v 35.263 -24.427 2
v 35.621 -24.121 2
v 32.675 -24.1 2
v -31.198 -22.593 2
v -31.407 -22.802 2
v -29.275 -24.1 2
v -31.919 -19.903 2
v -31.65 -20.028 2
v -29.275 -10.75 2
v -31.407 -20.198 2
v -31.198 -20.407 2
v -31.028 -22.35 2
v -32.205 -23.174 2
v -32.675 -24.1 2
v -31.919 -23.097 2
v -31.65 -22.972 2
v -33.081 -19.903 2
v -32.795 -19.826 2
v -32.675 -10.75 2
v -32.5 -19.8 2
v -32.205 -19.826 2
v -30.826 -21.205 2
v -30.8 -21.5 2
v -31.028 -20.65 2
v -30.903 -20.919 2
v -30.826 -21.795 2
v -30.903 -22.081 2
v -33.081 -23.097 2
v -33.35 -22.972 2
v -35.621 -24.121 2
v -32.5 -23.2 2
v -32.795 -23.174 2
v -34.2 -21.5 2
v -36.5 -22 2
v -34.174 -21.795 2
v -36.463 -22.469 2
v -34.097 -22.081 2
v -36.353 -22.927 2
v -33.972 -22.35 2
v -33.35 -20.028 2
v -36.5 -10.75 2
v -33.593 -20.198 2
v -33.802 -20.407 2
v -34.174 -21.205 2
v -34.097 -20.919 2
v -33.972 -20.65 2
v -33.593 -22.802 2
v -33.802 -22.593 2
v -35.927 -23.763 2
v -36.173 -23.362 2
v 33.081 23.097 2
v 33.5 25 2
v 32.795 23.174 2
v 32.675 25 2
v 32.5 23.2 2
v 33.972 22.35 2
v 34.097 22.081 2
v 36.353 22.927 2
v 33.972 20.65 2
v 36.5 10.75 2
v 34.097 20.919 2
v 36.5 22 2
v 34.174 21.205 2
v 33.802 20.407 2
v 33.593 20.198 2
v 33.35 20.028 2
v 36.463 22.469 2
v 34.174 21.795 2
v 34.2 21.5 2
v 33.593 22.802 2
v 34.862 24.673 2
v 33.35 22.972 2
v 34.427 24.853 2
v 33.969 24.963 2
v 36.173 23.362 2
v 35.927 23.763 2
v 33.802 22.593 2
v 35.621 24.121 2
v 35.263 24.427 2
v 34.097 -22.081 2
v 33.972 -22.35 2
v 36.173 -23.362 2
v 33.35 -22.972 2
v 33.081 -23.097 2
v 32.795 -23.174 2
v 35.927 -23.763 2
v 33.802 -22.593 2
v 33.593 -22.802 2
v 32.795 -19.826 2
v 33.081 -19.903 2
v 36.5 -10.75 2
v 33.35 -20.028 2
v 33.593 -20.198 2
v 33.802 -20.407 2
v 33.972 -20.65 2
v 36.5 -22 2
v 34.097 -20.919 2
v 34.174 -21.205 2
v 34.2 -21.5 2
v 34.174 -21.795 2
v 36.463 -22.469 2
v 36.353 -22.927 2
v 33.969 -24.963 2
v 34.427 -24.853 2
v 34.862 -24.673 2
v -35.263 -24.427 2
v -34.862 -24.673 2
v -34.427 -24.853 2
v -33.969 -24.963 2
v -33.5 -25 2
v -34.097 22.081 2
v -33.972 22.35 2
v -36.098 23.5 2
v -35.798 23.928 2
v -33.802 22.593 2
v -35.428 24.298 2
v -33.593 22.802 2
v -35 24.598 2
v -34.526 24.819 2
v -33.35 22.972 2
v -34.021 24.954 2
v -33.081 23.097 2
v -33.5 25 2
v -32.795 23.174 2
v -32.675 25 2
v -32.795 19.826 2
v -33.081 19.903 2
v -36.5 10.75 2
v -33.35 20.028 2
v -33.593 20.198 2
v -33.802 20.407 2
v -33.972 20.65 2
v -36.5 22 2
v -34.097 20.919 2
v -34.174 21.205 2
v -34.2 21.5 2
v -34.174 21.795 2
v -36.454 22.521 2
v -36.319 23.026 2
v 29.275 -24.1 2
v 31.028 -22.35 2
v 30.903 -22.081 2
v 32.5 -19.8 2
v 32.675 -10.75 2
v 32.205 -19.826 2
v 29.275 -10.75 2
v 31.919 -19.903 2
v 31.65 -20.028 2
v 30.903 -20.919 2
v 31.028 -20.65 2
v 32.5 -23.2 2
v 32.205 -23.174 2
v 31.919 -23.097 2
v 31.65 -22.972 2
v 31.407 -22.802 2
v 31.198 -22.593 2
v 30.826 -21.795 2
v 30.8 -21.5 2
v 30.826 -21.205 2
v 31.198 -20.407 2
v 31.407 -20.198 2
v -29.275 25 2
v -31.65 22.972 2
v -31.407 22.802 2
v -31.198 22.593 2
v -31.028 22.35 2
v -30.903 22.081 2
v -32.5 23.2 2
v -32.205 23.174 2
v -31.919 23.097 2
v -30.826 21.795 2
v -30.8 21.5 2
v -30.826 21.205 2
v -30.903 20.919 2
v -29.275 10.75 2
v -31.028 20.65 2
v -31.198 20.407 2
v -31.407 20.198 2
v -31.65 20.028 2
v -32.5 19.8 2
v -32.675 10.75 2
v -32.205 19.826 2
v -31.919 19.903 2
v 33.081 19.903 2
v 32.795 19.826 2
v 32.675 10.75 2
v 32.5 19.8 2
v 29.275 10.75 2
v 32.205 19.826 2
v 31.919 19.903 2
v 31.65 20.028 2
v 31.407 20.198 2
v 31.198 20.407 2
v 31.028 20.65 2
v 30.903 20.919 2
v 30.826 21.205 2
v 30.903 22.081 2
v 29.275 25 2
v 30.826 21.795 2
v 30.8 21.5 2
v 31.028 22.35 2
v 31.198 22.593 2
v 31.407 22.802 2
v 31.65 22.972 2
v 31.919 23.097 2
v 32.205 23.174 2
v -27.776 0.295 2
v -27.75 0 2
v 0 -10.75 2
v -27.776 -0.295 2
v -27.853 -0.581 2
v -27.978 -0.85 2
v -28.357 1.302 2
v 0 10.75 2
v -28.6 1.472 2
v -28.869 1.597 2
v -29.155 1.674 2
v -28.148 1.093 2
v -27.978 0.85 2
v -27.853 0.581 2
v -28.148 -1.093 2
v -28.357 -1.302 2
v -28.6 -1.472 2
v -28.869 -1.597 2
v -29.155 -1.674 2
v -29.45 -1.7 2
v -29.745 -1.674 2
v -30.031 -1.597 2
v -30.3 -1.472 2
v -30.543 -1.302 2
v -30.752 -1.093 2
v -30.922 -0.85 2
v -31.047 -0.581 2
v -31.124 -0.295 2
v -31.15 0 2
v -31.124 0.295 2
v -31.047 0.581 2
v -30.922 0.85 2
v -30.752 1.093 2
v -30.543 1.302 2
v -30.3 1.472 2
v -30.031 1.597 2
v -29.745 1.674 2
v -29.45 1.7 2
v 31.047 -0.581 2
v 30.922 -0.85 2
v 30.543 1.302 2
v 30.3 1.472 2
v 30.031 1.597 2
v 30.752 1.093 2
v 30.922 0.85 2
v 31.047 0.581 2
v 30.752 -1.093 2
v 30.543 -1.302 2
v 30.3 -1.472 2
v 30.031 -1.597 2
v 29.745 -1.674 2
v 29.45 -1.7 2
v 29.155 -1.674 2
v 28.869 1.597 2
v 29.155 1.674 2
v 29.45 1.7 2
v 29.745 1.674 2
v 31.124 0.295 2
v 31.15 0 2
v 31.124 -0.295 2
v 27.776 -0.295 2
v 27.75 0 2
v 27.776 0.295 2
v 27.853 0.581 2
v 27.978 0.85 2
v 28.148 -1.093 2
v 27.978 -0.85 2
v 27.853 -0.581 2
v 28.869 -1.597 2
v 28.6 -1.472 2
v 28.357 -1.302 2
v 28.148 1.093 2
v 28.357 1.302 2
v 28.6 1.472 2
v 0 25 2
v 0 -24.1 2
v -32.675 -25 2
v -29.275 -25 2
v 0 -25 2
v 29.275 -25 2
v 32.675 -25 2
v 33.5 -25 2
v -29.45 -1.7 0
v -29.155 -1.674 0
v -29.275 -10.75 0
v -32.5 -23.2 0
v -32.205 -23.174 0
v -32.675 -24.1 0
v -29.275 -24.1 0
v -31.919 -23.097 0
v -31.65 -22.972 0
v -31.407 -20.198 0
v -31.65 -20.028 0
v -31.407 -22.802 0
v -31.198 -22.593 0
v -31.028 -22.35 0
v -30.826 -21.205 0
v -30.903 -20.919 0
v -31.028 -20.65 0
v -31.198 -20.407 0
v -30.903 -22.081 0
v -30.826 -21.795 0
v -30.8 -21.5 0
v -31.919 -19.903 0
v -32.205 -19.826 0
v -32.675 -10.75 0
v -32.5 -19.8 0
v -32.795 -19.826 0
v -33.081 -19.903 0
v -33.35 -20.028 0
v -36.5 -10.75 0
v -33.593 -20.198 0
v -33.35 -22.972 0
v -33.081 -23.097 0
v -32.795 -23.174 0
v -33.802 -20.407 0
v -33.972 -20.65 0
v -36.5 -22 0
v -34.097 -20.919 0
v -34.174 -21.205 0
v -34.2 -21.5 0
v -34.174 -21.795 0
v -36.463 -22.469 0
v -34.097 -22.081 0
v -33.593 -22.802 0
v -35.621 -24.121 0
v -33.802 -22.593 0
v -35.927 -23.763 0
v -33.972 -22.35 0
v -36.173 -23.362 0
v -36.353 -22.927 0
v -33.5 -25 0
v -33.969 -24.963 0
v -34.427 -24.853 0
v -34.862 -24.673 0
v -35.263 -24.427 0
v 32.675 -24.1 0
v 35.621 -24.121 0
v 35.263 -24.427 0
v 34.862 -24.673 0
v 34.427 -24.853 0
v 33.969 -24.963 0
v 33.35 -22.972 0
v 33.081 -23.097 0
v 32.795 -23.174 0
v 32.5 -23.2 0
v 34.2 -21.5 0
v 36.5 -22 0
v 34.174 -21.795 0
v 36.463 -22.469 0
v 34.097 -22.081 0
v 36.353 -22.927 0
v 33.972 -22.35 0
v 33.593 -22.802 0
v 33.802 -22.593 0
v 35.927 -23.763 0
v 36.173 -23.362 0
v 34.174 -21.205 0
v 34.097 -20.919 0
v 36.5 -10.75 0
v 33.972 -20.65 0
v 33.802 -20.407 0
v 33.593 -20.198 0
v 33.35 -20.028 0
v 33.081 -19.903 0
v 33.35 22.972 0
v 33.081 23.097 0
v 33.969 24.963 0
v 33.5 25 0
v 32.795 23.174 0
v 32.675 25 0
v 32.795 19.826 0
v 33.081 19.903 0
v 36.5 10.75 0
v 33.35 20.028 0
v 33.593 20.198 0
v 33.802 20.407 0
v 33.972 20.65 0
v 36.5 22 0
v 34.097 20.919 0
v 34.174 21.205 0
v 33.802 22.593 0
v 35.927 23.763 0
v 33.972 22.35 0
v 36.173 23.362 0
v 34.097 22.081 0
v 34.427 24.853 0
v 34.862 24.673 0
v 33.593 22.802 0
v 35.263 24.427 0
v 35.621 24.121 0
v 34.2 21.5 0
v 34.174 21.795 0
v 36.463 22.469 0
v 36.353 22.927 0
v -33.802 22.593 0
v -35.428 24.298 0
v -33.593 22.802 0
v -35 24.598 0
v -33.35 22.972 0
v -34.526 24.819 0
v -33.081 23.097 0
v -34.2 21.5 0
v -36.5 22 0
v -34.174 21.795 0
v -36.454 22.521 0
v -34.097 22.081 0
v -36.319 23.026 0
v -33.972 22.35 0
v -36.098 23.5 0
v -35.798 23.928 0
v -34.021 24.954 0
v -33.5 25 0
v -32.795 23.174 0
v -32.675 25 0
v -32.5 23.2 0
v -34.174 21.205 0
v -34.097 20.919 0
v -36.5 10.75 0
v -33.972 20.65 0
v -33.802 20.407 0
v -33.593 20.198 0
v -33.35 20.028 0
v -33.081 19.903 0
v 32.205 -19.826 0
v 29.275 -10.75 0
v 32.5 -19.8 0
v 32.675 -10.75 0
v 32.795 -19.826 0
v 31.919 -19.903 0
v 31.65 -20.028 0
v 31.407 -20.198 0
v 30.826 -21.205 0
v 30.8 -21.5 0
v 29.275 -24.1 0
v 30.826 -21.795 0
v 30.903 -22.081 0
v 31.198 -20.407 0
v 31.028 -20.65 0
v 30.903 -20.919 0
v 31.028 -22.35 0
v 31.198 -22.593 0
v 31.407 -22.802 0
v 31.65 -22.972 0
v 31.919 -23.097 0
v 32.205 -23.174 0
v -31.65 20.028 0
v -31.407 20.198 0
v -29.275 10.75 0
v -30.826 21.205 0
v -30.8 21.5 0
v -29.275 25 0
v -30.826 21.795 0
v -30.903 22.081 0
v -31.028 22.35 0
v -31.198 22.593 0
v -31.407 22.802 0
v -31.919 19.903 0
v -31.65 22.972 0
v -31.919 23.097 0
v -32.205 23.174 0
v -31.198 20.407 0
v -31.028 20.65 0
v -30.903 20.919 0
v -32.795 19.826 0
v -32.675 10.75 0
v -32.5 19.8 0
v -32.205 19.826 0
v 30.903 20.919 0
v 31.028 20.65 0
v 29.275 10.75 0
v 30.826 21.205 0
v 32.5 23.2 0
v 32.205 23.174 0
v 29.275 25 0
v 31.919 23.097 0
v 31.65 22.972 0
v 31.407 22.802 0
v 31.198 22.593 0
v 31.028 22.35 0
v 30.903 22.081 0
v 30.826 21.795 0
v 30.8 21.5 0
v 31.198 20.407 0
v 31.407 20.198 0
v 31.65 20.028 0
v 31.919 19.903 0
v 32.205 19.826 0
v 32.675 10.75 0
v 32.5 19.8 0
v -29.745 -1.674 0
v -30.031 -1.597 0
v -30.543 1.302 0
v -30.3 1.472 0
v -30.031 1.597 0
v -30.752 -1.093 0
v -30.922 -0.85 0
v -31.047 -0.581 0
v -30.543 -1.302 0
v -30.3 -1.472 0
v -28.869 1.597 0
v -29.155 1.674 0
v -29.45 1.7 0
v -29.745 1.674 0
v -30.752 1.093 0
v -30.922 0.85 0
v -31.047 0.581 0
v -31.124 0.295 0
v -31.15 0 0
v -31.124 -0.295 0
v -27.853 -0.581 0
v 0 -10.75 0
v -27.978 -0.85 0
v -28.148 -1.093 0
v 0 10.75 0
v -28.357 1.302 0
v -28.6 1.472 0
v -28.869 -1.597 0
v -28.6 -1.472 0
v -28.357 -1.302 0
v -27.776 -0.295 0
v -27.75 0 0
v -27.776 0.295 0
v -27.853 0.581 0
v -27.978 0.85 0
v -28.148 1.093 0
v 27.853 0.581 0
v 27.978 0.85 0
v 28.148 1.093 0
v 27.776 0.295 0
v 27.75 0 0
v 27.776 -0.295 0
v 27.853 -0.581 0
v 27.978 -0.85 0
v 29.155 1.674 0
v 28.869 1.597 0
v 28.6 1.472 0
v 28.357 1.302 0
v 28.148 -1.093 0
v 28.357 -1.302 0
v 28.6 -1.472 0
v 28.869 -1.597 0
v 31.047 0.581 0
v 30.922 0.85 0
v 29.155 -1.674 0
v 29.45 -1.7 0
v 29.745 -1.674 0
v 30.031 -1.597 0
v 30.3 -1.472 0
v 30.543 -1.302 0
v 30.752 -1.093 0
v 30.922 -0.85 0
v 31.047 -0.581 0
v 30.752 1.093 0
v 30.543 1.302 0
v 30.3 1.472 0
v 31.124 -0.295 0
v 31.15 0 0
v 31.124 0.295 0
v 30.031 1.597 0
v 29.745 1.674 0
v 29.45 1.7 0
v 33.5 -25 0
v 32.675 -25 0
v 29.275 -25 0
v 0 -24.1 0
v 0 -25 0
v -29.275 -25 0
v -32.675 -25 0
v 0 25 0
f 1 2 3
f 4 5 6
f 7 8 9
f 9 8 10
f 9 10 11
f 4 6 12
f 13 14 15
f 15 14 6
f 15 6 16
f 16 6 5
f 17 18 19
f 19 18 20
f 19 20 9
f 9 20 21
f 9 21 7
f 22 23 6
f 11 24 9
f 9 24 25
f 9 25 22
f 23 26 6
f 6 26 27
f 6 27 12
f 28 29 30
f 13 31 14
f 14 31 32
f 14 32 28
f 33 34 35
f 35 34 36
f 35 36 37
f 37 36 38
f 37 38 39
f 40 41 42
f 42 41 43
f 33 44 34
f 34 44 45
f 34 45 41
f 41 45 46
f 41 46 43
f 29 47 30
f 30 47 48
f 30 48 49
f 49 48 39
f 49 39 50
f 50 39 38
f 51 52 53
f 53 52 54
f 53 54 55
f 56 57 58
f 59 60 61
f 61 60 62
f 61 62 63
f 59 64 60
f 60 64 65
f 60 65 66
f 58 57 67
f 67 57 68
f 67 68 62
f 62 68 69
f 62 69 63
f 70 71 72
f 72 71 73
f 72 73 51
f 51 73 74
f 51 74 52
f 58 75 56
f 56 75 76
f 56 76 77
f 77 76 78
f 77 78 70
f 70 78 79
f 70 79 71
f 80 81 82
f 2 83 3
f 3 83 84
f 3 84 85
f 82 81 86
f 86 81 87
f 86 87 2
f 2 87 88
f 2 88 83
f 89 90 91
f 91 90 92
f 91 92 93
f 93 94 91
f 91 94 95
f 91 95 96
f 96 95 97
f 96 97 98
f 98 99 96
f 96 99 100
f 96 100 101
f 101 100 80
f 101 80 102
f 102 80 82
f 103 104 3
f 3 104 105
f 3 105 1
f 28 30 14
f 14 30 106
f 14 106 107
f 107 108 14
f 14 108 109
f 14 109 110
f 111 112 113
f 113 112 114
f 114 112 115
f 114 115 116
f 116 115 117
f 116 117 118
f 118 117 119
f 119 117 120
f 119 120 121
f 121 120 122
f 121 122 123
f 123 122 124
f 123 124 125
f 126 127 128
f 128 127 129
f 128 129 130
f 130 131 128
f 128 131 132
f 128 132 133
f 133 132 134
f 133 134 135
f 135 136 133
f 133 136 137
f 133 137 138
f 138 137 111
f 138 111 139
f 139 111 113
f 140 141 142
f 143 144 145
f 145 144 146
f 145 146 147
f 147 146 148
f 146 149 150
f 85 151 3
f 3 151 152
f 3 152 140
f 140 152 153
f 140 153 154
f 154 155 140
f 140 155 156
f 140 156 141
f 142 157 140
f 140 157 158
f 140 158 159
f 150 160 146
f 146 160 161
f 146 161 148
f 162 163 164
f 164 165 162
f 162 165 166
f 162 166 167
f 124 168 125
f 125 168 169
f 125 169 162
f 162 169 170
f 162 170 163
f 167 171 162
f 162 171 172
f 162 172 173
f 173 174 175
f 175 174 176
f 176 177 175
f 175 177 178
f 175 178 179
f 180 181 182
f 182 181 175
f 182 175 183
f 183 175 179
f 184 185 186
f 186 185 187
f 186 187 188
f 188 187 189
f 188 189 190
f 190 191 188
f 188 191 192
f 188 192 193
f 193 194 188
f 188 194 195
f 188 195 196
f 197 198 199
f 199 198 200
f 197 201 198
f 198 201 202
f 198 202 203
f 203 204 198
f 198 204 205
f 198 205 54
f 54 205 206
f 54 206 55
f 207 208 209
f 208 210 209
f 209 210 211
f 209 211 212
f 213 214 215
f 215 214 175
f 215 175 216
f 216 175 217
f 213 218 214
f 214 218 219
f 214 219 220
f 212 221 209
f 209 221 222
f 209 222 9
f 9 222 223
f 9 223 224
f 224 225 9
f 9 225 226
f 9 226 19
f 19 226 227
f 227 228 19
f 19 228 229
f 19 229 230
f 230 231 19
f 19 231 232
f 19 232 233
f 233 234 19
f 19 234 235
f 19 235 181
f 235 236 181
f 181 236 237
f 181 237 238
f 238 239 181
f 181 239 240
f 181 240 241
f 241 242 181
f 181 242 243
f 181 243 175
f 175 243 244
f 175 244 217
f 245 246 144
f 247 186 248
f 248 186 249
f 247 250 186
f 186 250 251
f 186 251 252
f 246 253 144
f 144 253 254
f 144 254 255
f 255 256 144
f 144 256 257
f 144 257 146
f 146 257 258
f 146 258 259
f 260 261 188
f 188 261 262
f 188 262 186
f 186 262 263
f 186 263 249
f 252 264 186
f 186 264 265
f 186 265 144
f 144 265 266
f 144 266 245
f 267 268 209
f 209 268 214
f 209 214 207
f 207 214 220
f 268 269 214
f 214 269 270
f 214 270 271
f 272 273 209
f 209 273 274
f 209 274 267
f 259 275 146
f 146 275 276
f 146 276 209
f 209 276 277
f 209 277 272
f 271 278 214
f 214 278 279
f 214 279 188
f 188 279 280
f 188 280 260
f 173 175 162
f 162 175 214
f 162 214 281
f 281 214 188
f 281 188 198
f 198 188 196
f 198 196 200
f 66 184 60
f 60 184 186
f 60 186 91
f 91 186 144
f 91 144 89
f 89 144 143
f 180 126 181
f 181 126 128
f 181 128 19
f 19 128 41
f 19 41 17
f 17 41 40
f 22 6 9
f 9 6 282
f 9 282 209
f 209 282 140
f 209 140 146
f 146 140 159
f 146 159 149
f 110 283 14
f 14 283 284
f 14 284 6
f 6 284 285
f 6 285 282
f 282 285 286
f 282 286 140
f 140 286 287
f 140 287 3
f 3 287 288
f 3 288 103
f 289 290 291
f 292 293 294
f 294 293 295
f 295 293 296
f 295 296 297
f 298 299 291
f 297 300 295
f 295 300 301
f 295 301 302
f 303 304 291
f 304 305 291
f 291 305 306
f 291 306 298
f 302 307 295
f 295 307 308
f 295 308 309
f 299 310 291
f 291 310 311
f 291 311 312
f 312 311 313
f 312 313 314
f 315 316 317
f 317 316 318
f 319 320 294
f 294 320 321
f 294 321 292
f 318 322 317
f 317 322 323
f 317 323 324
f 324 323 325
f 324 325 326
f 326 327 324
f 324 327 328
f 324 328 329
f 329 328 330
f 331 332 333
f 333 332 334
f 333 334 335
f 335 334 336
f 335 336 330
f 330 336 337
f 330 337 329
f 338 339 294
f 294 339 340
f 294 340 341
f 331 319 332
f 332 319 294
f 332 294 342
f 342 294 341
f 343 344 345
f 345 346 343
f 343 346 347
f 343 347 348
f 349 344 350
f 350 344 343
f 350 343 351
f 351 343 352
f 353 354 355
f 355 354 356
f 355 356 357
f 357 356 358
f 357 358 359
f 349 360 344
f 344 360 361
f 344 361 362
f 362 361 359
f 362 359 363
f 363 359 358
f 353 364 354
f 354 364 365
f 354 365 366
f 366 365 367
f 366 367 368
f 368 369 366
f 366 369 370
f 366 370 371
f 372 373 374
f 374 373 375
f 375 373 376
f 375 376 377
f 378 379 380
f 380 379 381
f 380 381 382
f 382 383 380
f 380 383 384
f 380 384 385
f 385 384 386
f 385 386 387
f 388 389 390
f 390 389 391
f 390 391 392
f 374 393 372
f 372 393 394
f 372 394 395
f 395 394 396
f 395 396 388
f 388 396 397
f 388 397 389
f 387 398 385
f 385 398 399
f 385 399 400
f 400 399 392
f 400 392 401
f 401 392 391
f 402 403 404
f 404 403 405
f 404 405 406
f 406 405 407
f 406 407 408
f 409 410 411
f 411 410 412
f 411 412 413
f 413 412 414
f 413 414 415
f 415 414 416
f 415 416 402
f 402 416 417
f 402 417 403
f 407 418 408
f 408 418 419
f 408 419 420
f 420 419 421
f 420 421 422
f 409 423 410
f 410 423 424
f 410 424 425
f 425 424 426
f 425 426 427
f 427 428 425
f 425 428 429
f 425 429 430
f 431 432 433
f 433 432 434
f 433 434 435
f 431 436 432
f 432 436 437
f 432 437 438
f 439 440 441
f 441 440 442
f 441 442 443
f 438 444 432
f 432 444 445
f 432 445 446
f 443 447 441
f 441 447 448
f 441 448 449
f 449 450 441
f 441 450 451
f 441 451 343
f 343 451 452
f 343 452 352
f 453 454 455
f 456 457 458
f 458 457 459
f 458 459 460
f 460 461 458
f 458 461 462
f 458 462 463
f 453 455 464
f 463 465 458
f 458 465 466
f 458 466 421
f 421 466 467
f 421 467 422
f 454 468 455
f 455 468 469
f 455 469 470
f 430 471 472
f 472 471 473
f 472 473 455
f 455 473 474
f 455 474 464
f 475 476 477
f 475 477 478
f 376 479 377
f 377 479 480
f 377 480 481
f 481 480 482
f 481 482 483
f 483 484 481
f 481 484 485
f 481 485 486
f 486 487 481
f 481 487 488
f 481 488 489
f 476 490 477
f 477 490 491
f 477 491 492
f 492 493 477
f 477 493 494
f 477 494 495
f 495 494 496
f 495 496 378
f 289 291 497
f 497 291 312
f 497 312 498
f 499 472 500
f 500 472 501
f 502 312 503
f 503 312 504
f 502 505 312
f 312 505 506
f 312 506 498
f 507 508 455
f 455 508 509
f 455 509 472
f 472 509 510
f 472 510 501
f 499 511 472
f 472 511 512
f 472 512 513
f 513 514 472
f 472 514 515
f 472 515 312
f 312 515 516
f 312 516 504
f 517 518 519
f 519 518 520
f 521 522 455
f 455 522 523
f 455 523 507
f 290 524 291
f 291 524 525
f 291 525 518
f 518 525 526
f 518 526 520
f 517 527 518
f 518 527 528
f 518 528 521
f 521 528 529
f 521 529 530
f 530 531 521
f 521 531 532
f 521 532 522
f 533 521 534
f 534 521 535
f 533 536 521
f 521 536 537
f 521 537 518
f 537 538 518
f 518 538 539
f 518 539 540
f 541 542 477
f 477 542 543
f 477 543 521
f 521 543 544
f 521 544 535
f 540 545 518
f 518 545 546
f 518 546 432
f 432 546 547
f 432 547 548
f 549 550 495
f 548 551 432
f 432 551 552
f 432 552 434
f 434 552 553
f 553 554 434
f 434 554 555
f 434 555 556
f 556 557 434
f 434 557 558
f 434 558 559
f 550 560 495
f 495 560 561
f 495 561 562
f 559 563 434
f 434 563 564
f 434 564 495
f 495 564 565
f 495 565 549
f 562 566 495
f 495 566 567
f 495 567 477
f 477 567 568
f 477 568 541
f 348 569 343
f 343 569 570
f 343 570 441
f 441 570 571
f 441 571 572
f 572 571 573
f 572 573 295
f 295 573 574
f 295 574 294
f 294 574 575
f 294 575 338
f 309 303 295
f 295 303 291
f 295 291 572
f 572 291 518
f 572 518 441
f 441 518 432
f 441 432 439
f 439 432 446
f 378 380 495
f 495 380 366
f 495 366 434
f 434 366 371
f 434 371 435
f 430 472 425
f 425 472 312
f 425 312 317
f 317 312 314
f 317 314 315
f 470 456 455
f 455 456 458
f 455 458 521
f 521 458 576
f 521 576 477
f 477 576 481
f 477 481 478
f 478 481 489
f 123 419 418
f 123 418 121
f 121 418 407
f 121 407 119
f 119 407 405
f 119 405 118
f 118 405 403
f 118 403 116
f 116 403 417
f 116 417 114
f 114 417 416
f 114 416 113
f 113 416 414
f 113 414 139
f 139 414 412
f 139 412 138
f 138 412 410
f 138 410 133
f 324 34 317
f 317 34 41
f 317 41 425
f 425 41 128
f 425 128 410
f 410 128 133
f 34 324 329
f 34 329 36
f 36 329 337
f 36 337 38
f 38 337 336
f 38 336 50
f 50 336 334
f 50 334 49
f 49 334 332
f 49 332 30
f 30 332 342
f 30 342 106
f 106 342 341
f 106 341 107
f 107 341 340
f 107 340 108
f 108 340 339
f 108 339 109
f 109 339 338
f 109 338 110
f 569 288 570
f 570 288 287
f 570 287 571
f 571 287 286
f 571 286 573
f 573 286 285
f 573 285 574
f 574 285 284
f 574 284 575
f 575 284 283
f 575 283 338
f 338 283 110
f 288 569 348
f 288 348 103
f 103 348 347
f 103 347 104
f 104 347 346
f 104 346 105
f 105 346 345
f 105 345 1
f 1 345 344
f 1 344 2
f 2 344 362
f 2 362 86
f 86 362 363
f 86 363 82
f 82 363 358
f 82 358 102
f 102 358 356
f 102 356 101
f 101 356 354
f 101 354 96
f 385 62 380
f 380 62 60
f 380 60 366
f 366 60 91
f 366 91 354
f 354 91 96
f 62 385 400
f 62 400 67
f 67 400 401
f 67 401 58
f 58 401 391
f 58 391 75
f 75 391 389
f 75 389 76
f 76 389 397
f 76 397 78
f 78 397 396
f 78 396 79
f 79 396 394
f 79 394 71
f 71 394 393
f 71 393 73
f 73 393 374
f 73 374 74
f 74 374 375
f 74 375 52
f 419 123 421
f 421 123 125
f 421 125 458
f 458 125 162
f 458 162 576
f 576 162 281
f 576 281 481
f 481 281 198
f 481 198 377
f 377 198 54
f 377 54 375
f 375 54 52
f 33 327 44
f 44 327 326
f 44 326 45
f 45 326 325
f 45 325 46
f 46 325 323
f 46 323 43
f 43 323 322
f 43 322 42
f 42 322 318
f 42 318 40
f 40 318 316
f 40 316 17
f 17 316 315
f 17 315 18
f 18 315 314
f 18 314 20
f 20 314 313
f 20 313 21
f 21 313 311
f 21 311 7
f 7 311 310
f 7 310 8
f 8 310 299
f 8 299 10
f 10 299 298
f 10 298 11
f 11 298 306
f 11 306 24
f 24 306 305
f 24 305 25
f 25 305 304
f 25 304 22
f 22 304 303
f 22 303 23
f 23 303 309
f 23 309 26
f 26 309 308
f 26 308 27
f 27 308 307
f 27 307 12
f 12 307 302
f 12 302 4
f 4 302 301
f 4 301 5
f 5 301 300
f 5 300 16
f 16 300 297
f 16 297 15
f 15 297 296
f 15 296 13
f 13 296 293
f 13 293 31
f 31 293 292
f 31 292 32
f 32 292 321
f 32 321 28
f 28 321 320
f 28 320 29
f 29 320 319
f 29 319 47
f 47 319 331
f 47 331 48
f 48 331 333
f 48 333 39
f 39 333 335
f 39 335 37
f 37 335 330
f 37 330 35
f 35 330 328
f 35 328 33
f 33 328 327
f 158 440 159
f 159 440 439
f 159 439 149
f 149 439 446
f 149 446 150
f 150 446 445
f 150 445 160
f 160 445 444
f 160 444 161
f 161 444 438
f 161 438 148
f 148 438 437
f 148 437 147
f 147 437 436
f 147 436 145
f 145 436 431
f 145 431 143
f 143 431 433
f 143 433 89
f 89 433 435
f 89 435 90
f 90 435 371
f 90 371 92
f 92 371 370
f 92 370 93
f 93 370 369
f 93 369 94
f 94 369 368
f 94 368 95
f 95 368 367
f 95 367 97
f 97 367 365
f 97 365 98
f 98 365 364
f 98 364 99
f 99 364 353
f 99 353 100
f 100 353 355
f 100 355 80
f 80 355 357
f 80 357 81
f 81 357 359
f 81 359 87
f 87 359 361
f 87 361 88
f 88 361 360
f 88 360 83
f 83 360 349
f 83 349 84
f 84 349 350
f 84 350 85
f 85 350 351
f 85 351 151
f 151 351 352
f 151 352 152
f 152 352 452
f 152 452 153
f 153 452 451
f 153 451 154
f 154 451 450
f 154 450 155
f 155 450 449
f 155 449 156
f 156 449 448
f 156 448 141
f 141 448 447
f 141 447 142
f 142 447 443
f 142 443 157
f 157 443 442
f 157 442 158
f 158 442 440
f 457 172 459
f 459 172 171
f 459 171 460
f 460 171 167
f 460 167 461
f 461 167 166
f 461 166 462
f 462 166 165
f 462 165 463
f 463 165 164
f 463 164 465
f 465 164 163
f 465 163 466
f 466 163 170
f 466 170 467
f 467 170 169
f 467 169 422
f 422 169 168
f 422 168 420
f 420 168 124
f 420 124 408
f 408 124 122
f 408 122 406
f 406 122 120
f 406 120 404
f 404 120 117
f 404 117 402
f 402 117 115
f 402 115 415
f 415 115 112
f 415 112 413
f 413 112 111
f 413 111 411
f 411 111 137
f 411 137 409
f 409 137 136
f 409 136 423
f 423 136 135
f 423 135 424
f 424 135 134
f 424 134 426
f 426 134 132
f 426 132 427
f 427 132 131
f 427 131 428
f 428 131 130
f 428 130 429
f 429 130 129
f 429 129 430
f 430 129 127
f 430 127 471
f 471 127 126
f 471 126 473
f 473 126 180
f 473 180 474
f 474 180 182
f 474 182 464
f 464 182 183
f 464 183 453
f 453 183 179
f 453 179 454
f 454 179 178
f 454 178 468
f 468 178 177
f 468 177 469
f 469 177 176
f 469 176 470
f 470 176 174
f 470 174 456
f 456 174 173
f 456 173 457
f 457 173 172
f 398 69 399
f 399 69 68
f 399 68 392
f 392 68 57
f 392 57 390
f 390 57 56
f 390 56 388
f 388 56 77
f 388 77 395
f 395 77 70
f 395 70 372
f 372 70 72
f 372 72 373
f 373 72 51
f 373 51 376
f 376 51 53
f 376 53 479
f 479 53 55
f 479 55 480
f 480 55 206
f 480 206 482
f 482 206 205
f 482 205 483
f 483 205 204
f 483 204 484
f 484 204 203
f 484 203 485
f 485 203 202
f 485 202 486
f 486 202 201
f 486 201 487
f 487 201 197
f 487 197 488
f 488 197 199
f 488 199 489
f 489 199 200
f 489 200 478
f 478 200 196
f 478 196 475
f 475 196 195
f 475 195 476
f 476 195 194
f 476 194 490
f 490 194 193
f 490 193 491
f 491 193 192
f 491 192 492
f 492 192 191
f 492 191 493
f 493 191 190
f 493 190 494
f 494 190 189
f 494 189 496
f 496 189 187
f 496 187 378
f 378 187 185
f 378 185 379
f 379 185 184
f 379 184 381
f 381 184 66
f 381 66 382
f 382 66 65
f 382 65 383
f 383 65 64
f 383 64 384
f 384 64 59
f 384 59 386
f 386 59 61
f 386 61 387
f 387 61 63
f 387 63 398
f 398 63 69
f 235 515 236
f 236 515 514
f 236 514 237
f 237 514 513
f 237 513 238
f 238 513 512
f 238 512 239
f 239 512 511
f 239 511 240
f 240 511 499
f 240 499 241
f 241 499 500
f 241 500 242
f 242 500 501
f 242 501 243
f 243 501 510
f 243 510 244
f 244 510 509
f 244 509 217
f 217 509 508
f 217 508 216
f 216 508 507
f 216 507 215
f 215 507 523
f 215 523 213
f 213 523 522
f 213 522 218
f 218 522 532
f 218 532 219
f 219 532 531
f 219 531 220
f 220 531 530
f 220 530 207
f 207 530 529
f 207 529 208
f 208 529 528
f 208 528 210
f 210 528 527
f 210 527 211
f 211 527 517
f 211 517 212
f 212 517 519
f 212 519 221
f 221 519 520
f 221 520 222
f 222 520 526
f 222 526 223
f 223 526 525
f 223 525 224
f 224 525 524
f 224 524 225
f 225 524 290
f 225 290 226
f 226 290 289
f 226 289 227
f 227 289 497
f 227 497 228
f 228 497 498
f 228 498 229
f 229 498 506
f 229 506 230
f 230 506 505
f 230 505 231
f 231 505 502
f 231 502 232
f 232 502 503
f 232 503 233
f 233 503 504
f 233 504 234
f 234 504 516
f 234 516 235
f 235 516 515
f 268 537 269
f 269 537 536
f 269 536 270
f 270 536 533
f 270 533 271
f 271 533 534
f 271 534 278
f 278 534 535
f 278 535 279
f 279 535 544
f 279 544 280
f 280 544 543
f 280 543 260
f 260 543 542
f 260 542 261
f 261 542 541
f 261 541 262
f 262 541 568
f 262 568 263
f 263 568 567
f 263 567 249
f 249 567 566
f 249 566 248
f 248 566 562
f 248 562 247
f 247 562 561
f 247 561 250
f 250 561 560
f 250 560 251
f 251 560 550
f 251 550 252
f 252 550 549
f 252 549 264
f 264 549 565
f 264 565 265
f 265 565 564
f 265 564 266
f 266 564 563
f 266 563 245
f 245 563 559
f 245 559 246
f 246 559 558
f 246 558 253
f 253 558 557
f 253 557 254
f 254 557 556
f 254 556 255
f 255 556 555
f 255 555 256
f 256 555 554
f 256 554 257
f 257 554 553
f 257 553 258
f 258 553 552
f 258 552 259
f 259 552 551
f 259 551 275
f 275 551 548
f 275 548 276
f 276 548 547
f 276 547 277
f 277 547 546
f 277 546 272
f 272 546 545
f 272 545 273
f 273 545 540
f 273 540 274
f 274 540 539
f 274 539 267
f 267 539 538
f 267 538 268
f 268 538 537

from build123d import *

# Parameters (mm, degrees)
SKETCH1_R           = 1.7
BOSS_EXTRUDE1_DEPTH = 2
CUT_EXTRUDE7_REACH  = 46.286
SKETCH3_R           = 1.7
SKETCH4_R           = 1.7
CUT_EXTRUDE8_DEPTH  = 45.286002303
SKETCH7_R           = 1.7
CUT_EXTRUDE9_DEPTH  = 45.286002303
CUT_EXTRUDE10_REACH = 46.286
SKETCH8_R           = 1.7


with BuildPart() as part:
    # Sketch1 → Boss-Extrude1 (new body)
    with BuildSketch(Plane.XY):
        with BuildLine():
            Line((-33.5, 25), (33.5, 25))
            ThreePointArc((33.5, 25), (35.621320344, 24.121320344), (36.5, 22))
            Line((36.5, 22), (36.5, -22))
            ThreePointArc((36.5, -22), (35.621320344, -24.121320344), (33.5, -25))
            Line((33.5, -25), (-33.5, -25))
            ThreePointArc((-33.5, -25), (-35.621320344, -24.121320344), (-36.5, -22))
            Line((-36.5, -22), (-36.5, 22))
            ThreePointArc((-36.5, 22), (-35.621320344, 24.121320344), (-33.5, 25))
        make_face()
        with Locations((-32.5, -21.5)):
            Circle(SKETCH1_R, mode=Mode.SUBTRACT)
    extrude(amount=BOSS_EXTRUDE1_DEPTH)

    # Sketch3 → Cut-Extrude7 (cut, up to next)
    with BuildSketch(Plane.XY, mode=Mode.PRIVATE) as cut_extrude7_sk1:
        with Locations((32.5, -21.5)):
            Circle(SKETCH3_R)
    cut_extrude7_tool1 = extrude(cut_extrude7_sk1.sketch, amount=CUT_EXTRUDE7_REACH, mode=Mode.PRIVATE) & part.part
    add(cut_extrude7_tool1.solids().sort_by_distance((32.5, -21.5, 0))[0], mode=Mode.SUBTRACT)

    # Sketch4 → Cut-Extrude8 (cut, through all)
    with BuildSketch(Plane.XY.offset(2)):
        with Locations((-32.5, 21.5)):
            Circle(SKETCH4_R)
    extrude(amount=-CUT_EXTRUDE8_DEPTH, mode=Mode.SUBTRACT)

    # Sketch7 → Cut-Extrude9 (cut, through all)
    with BuildSketch(Plane.XY.offset(2)):
        with Locations((32.5, 21.5)):
            Circle(SKETCH7_R)
    extrude(amount=-CUT_EXTRUDE9_DEPTH, mode=Mode.SUBTRACT)

    # Sketch8 → Cut-Extrude10 (cut, up to next)
    with BuildSketch(Plane(origin=(0, 0, 0), x_dir=(-1, 0, 0), z_dir=(0, 0, -1)), mode=Mode.PRIVATE) as cut_extrude10_sk1:
        with Locations((-29.45, 0)):
            Circle(SKETCH8_R)
    cut_extrude10_tool1 = extrude(cut_extrude10_sk1.sketch, amount=-CUT_EXTRUDE10_REACH, mode=Mode.PRIVATE) & part.part
    # Sketch8 → Cut-Extrude10 (cut, up to next)
    with BuildSketch(Plane(origin=(0, 0, 0), x_dir=(-1, 0, 0), z_dir=(0, 0, -1)), mode=Mode.PRIVATE) as cut_extrude10_sk2:
        with Locations((29.45, 0)):
            Circle(SKETCH8_R)
    cut_extrude10_tool2 = extrude(cut_extrude10_sk2.sketch, amount=-CUT_EXTRUDE10_REACH, mode=Mode.PRIVATE) & part.part
    add(cut_extrude10_tool1.solids().sort_by_distance((29.45, 0, 0))[0], mode=Mode.SUBTRACT)
    add(cut_extrude10_tool2.solids().sort_by_distance((-29.45, 0, 0))[0], mode=Mode.SUBTRACT)


solid = part.part
